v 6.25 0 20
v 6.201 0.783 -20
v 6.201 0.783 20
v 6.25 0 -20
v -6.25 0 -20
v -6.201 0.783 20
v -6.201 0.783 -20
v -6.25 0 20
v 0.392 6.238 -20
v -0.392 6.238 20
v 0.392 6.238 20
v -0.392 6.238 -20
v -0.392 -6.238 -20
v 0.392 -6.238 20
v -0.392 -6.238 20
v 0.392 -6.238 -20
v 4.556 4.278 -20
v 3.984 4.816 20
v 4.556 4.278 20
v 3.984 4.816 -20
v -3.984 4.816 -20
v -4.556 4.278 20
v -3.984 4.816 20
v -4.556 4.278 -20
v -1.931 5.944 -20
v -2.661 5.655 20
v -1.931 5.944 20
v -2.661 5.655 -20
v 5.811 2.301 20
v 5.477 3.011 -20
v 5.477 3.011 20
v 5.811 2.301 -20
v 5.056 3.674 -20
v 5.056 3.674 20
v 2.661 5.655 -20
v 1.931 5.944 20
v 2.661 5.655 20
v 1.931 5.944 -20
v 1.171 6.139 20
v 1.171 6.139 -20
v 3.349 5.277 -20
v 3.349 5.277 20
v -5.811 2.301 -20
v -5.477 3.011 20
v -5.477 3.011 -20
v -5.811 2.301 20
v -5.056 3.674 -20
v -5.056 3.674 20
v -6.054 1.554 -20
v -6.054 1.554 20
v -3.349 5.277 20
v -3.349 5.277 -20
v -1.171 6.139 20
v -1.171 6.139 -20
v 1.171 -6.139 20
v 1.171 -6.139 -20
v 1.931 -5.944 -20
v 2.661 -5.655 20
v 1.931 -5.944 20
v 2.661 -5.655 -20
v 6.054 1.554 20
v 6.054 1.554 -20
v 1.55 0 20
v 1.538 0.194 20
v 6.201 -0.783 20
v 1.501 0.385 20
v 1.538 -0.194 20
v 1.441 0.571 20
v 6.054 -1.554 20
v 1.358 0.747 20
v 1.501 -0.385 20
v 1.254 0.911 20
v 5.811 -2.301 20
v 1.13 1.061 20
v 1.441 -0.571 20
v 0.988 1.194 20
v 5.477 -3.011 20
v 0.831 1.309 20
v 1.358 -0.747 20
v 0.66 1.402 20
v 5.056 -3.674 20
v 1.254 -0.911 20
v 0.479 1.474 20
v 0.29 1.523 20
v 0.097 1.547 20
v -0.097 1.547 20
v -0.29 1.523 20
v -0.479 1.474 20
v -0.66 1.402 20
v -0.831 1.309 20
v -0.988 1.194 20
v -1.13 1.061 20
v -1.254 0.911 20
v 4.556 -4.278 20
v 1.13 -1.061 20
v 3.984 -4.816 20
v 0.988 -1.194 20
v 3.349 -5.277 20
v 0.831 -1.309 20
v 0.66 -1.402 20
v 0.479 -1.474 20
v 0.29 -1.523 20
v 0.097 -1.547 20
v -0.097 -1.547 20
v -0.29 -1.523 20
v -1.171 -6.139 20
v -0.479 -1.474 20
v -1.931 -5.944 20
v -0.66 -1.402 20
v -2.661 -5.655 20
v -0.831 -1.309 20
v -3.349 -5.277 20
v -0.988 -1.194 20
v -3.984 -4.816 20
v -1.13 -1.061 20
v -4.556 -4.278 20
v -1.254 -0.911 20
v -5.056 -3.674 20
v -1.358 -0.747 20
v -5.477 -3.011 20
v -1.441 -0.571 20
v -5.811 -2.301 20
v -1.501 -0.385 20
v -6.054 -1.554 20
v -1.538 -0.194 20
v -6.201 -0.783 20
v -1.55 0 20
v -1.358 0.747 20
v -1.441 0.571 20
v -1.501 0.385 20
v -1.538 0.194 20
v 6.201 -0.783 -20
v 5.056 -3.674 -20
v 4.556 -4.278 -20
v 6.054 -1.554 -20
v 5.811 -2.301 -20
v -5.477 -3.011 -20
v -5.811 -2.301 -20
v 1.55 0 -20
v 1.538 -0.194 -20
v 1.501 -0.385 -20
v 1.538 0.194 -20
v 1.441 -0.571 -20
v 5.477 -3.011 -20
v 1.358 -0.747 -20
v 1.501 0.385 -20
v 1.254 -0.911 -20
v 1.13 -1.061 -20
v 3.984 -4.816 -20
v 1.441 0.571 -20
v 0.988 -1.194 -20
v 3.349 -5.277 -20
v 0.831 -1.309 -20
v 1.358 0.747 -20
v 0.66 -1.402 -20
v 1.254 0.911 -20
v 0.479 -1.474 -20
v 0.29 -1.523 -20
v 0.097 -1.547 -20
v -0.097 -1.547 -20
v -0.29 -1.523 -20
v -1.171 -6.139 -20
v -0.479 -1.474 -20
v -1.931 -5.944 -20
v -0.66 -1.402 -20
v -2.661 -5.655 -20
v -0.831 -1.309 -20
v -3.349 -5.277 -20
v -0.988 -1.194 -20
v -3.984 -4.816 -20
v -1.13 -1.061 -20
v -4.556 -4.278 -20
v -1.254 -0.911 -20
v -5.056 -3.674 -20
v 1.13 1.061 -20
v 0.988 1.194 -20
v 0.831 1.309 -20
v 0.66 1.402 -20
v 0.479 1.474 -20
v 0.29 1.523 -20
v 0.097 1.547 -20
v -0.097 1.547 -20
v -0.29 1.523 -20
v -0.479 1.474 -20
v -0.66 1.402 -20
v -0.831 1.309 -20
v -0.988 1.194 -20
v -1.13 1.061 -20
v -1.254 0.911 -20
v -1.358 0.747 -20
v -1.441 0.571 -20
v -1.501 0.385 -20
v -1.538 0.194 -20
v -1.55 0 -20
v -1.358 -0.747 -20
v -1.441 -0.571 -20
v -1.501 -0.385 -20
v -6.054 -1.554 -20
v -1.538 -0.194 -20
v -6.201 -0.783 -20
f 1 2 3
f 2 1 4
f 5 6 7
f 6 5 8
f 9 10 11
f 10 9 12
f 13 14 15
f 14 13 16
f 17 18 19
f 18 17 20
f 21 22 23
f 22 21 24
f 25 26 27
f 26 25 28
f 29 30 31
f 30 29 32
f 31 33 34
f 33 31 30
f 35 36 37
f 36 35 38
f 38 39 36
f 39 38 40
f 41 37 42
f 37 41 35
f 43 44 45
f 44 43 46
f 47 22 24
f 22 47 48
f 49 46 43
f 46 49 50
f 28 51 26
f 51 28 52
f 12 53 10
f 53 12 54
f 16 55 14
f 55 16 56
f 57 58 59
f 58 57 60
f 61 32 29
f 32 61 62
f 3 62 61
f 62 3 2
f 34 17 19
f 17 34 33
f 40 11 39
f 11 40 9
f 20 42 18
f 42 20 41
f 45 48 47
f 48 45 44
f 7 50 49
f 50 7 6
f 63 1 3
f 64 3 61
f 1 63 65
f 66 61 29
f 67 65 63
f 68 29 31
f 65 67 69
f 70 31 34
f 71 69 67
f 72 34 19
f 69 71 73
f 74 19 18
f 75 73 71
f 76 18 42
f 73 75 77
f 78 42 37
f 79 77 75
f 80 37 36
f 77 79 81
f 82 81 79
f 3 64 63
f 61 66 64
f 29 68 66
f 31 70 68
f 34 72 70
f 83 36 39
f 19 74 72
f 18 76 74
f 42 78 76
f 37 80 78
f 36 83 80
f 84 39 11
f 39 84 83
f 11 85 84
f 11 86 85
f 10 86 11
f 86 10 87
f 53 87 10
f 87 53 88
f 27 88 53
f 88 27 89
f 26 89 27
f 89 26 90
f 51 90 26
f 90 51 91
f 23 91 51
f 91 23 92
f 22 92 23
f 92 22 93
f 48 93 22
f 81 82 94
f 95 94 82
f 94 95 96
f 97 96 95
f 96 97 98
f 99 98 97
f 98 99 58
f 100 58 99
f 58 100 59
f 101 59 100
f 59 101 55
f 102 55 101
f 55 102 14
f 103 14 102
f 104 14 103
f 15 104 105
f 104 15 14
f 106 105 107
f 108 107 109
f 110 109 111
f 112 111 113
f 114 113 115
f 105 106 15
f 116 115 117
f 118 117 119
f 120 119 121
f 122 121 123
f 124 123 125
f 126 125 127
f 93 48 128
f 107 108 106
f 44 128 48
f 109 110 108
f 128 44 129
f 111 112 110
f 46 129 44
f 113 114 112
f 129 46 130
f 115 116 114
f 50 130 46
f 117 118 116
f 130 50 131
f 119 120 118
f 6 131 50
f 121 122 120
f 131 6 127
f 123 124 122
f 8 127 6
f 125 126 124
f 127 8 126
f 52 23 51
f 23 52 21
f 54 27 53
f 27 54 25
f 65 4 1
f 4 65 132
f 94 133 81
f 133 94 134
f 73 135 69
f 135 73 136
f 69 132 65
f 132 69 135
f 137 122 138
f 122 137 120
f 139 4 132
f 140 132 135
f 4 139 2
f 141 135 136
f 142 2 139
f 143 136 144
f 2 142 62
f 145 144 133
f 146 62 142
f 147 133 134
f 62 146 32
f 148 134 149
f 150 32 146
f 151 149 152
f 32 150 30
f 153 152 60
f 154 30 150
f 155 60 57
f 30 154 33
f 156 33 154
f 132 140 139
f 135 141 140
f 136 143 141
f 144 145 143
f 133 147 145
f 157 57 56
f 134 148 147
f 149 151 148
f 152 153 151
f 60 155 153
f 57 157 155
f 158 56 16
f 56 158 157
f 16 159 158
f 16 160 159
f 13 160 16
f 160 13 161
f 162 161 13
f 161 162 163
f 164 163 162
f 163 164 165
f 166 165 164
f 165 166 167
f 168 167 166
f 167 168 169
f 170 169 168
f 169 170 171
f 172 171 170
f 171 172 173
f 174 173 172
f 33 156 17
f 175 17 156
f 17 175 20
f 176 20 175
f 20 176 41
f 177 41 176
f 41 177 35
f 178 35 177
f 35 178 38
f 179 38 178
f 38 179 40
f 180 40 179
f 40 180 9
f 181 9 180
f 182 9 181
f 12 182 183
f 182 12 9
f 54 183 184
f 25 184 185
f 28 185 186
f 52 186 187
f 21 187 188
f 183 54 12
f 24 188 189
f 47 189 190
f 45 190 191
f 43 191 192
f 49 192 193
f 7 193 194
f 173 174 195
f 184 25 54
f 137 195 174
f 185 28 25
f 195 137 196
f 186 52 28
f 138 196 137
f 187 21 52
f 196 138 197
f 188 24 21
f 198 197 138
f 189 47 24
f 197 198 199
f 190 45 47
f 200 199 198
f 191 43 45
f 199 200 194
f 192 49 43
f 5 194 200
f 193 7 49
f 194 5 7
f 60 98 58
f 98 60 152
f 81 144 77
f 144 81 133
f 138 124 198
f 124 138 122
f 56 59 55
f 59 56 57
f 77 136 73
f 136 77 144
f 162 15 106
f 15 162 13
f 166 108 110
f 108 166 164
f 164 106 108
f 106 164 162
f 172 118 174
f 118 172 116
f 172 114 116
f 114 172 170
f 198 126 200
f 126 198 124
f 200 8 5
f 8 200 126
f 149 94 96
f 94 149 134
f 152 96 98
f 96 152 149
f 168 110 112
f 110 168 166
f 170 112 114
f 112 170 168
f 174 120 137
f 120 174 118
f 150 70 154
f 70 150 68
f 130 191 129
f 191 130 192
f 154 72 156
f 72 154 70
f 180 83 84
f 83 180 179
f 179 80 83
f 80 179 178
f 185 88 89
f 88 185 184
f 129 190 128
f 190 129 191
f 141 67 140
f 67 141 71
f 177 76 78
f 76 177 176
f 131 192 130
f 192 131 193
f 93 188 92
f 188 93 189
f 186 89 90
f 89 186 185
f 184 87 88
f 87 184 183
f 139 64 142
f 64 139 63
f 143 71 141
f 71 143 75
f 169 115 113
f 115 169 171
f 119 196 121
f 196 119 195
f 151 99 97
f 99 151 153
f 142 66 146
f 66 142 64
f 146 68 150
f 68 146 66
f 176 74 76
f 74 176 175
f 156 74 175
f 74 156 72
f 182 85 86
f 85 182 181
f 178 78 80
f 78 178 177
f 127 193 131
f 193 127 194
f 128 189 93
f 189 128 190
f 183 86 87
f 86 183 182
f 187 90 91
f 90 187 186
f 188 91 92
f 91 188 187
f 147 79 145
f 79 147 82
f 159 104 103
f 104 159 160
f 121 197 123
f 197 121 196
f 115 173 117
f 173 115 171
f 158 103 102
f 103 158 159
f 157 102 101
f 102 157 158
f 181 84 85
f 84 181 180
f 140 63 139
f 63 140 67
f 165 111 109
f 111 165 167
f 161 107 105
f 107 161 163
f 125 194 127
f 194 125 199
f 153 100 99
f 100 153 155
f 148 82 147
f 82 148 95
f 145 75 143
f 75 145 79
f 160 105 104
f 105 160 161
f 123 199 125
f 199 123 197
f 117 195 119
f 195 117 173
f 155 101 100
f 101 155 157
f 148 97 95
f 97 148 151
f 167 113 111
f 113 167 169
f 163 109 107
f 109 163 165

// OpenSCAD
$fn = 50;


difference() {
	union() {
		translate(v = [0, 0, -20.0000000000]) {
			cylinder(h = 40, r = 6.2500000000);
		}
	}
	union() {
		translate(v = [0, 0, -100.0000000000]) {
			cylinder(h = 200, r = 1.5500000000);
		}
	}
}
